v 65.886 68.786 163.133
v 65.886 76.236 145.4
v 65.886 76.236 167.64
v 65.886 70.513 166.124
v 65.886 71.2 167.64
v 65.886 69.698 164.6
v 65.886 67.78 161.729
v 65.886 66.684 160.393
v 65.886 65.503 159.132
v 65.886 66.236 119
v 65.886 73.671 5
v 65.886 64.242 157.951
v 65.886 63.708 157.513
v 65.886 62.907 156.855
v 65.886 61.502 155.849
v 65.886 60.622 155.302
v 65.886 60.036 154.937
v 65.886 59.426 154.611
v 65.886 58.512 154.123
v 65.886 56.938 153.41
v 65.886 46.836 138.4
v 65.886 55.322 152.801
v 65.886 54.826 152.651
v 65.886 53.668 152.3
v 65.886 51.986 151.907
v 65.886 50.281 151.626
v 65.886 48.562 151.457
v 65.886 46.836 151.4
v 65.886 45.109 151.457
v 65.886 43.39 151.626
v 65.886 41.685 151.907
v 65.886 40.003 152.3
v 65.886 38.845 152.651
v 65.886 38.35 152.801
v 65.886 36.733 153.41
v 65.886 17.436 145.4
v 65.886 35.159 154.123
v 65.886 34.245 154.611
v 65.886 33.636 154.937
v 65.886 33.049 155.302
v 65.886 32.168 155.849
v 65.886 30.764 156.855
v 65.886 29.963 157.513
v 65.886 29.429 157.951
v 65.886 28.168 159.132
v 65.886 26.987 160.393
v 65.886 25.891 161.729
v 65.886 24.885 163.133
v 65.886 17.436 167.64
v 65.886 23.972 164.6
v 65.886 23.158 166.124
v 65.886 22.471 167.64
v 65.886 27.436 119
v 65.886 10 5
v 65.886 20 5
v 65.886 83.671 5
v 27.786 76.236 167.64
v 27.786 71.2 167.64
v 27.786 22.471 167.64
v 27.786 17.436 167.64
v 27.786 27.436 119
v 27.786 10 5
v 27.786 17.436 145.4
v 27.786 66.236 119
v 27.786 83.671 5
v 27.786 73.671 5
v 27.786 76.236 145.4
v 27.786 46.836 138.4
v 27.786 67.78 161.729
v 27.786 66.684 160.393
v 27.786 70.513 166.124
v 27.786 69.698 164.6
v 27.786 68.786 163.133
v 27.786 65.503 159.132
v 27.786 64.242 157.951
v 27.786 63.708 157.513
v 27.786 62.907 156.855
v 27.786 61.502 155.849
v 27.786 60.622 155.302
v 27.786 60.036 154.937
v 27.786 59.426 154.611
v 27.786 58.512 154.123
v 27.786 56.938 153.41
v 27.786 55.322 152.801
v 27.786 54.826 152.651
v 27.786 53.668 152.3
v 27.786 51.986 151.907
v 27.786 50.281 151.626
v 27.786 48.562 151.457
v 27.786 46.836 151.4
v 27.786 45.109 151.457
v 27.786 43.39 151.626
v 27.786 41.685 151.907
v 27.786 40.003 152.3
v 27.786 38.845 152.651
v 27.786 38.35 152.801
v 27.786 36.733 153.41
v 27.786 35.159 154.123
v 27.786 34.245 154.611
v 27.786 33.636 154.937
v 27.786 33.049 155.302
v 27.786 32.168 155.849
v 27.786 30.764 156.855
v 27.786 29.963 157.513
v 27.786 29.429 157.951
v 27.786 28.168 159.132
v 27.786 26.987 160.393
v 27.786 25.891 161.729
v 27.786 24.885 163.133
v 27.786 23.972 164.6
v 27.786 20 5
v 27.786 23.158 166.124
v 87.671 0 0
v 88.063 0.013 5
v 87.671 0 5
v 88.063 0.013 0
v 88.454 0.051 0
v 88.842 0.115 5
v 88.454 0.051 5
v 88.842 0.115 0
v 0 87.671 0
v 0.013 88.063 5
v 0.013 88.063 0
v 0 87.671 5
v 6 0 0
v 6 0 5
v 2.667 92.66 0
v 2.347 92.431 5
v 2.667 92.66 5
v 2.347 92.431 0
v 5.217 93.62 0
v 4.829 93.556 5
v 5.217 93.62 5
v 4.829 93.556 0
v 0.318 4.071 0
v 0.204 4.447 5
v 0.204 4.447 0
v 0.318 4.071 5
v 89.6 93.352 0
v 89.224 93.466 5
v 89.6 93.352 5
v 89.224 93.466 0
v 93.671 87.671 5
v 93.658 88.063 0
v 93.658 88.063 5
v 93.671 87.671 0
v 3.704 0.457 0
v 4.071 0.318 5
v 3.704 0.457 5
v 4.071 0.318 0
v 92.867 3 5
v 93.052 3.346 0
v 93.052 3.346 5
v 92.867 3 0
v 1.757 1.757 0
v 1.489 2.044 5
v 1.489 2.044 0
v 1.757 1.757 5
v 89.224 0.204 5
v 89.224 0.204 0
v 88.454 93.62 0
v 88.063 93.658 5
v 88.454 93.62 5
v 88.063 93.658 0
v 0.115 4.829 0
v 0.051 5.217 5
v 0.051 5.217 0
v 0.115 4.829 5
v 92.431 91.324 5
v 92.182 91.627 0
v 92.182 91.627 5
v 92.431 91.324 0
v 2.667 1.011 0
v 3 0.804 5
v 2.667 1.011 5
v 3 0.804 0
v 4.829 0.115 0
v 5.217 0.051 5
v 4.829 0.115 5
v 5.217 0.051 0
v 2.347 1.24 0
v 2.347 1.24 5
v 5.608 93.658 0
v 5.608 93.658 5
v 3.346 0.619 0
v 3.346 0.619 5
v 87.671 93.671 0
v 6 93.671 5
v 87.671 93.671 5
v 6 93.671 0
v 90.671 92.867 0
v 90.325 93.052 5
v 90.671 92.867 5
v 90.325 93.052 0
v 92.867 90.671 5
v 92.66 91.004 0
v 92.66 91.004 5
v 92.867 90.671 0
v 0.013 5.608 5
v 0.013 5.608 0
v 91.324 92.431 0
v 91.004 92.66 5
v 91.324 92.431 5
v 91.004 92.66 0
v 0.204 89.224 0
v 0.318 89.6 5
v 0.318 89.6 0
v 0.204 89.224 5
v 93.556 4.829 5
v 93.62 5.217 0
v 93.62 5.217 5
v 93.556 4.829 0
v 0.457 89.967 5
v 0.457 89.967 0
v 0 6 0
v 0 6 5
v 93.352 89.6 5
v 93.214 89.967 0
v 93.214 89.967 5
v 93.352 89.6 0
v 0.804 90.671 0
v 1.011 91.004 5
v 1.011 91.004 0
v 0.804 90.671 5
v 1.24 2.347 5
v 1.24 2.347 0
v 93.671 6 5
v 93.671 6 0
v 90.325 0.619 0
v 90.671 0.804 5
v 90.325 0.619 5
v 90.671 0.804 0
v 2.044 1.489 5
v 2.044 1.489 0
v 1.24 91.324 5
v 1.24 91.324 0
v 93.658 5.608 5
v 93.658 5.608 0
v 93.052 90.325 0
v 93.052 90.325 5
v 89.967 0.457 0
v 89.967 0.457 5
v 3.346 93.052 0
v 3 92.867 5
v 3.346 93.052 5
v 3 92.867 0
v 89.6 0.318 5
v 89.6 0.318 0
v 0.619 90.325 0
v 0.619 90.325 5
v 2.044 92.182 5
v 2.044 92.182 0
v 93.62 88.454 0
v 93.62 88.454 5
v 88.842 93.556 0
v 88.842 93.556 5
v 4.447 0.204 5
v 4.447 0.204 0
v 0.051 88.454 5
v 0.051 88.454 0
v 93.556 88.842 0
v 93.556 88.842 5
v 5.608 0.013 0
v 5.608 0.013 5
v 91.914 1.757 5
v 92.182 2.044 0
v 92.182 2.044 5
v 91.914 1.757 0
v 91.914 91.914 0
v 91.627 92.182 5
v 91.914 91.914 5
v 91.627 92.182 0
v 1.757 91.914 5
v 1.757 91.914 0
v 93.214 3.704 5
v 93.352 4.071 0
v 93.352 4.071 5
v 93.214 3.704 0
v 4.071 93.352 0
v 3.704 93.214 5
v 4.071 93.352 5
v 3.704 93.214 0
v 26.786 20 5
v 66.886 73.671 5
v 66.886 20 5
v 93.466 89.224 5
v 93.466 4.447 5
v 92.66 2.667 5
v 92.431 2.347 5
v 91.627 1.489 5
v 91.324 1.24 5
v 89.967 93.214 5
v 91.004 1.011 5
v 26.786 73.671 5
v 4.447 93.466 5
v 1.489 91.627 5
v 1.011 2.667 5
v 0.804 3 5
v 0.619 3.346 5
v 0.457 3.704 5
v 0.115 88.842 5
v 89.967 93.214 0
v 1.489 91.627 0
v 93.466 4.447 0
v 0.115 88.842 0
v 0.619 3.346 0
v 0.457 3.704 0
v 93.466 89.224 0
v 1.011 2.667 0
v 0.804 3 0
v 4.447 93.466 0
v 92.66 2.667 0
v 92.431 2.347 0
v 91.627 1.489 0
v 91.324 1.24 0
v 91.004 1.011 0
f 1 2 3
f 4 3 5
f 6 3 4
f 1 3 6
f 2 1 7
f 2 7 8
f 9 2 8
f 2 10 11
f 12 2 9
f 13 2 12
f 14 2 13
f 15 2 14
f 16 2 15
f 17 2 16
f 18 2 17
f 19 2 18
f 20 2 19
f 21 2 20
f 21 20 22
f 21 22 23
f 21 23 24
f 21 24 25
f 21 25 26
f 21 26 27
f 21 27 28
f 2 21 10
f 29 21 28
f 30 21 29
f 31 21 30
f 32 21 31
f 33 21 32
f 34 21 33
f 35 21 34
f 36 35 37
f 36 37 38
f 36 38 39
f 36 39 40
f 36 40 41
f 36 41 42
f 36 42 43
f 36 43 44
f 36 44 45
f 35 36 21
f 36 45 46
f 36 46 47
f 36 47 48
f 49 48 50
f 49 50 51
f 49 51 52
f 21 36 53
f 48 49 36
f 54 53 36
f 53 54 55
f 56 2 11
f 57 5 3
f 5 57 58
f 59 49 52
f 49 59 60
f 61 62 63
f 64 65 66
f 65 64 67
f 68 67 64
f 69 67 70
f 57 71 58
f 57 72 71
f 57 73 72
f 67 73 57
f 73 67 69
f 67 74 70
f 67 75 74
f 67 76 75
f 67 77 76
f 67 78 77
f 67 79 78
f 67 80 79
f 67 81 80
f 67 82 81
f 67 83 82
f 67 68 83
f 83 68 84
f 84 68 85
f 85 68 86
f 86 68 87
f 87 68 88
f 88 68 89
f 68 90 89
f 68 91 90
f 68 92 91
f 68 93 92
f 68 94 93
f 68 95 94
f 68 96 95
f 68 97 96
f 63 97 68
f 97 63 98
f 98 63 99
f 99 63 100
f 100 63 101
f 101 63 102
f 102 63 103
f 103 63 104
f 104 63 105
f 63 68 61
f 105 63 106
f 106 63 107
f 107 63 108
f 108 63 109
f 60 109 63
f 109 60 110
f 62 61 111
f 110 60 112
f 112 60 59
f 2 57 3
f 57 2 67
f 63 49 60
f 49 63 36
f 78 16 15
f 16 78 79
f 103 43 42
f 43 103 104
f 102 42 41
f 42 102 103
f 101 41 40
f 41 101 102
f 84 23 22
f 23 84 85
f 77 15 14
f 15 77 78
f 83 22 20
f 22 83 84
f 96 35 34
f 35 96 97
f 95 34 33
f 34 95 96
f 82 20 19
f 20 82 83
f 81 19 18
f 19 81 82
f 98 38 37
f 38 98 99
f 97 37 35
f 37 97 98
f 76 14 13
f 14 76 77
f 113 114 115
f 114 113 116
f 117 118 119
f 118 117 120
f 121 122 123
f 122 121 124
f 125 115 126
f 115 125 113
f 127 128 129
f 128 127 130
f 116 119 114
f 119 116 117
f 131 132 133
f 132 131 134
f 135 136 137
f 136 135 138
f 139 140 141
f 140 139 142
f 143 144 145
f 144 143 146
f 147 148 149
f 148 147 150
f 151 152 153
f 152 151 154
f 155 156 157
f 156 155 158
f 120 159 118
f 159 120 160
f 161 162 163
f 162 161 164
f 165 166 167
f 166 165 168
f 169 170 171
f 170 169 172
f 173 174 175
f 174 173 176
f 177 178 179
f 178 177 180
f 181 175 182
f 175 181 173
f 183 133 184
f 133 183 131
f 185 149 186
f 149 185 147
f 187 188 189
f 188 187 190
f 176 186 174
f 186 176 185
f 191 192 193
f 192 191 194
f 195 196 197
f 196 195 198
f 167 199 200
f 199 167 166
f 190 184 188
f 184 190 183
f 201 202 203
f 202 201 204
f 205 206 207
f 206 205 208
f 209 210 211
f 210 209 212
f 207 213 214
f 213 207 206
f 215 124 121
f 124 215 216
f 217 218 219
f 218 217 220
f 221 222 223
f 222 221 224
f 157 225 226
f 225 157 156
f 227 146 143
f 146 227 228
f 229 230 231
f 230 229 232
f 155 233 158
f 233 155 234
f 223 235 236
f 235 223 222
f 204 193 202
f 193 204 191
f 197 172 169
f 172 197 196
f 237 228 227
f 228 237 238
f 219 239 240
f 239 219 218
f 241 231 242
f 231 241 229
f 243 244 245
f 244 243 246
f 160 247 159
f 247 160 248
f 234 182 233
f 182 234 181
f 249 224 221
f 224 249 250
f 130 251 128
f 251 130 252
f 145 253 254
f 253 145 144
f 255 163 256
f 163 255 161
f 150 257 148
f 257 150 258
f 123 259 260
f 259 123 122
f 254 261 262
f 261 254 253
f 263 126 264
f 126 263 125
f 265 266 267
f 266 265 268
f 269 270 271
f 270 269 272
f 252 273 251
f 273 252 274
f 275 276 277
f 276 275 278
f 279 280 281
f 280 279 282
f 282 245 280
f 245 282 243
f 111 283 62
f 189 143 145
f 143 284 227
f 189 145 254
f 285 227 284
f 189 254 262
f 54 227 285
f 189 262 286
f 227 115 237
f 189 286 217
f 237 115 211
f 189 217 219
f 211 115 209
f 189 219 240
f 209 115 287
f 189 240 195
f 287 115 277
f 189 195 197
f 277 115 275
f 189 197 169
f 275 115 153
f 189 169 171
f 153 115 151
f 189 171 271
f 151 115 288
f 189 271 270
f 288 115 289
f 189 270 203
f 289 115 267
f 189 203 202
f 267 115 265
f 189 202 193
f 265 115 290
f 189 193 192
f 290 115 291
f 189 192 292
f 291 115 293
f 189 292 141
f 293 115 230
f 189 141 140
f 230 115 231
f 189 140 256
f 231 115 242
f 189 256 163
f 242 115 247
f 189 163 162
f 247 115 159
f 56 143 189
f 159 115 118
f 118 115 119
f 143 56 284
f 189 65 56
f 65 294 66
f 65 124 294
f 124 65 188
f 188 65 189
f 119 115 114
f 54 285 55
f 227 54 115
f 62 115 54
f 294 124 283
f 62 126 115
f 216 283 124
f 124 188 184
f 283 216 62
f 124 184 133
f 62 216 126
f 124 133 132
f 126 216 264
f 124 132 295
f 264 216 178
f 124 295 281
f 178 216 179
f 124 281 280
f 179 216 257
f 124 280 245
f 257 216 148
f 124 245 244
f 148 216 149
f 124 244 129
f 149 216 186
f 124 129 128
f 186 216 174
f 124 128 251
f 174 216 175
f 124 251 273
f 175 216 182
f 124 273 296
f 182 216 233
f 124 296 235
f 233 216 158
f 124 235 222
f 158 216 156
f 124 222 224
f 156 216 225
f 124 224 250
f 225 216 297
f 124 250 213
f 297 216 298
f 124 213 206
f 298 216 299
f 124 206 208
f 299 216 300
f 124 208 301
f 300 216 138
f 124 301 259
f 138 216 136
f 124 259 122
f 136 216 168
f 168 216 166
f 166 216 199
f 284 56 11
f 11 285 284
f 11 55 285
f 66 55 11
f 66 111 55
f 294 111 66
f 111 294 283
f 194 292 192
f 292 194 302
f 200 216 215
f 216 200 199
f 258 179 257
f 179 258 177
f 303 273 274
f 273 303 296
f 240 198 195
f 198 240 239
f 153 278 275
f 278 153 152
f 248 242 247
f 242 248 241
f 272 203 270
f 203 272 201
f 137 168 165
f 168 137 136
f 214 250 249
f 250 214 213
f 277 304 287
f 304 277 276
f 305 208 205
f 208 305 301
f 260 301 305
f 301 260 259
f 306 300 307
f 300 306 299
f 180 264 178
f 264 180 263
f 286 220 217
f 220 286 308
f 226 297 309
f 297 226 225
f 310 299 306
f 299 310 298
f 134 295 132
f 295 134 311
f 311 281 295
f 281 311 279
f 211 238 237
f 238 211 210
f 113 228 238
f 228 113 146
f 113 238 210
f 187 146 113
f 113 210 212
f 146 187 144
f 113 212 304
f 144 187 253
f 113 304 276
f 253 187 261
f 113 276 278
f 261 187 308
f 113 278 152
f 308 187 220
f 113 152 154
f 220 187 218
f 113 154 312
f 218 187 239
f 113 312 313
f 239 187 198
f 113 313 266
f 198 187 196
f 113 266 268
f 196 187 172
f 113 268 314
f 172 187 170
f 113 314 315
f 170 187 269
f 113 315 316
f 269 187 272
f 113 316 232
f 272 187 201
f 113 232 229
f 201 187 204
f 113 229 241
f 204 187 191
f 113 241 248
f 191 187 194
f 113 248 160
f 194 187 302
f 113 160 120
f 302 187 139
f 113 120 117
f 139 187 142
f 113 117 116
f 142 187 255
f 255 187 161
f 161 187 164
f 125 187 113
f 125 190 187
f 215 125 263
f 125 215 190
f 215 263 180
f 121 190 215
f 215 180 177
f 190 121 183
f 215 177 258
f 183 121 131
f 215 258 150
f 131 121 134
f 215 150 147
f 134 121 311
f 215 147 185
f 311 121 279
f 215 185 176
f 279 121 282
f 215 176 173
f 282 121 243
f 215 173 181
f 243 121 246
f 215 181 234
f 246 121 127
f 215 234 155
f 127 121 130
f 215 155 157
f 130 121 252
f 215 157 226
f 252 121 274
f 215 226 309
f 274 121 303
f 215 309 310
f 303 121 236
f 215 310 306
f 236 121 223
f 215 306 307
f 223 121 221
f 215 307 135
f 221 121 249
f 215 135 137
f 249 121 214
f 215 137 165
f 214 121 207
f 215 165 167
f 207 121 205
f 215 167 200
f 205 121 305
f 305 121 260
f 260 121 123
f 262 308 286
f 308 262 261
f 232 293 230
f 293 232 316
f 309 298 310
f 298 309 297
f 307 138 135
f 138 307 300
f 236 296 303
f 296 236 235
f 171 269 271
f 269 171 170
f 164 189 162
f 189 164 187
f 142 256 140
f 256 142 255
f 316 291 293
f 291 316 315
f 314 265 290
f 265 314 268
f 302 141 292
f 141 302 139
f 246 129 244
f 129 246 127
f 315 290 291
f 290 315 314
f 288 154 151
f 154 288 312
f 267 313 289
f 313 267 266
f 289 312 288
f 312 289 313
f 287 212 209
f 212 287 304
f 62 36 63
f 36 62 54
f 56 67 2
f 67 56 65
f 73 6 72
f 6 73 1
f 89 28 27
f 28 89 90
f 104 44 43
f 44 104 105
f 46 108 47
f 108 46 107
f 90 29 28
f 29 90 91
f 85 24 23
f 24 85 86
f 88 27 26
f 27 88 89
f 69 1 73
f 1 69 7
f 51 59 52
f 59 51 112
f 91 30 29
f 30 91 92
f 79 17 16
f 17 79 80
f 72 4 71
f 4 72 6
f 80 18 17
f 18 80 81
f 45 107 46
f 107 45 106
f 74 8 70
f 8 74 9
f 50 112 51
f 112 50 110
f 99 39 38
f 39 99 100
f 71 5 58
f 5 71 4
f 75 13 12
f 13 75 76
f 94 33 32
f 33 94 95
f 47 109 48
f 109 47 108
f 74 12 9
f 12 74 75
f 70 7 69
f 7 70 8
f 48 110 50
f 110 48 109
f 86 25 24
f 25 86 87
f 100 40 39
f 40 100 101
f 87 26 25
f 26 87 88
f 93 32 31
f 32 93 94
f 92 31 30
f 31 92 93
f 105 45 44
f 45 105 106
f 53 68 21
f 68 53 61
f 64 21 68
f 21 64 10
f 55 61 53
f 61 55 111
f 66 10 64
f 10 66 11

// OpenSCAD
// SPDX-License-Identifier: MIT
// Tilt prop: a stand that holds a sewing machine tipped back in its base
// Copyright (c) 2026 Robert Drzyzgula
// All dimensions in mm unless noted.
//
// A copy of this file is also kept in the VSM Base repository
// (github.com/bobdrzyzgula/VSM-Base),
// at standalone/tilt-prop/tilt_prop.scad.
// When either copy changes, ask Bob whether to make the same change in
// the other.
//
// Stand it on the table behind the base and tip the machine back onto it:
// its top catches the machine's arm (or some other solid part), so the
// machine stays put for oiling and adjusting, with both hands free, and its
// weight goes into the table instead of tipping the base up.
//
// The top is a cradle, for a round arm (a radius, and a width along the
// arm), or flat (a width and a length). Either can slope, to meet a part
// that comes to rest at an angle: the top turns about the width axis (the
// cradle's axis), rising toward the back. The foot is sized for stability:
// the line of a load on the top, square to it, can lean a further
// `stability_angle` either way before it passes the foot's edge, so a
// knock or a sloping top won't tip the prop over.
//
// Two tapered legs, front and back, rise from the foot to the top, with a
// gabled opening between them; it prints upright without supports.
// Self-contained: no libraries needed.
//
// Spun off from the VSM Base (https://github.com/bobdrzyzgula/VSM-Base).

/* [Top] */
// Height of the top above the table: the cradle's bottom, or the flat top's surface at its middle
height = 152.4; // [40 : 0.5 : 400]
// Top: a cradle for a round arm, or flat
top = "cradle"; // [cradle, flat]
// Cradle: radius (the arm's radius plus a little)
cradle_r = 25.4; // [5 : 0.5 : 80]
// Width along the arm (the cradle's length, or the flat top's width)
width = 38.1; // [15 : 0.5 : 150]
// Flat top: length, front to back
flat_length = 50; // [15 : 0.5 : 200]
// Slope of the top, degrees from level, rising toward the back (negative: toward the front)
slope = 0; // [-45 : 1 : 45]

/* [Foot and legs] */
// How far a load on the top may lean past square to it, either way, before the prop would tip (sets the foot's size)
stability_angle = 15; // [5 : 1 : 35]
// Foot thickness
foot_t = 5; // [3 : 0.5 : 12]
// Leg thickness, front and back
leg_t = 10; // [5 : 0.5 : 25]
// Clearance added to the cradle's radius
cradle_clear = 1; // [0 : 0.1 : 3]

/* [Hidden] */
$fn = 96;
// Head: depth front to back, its underside below the top, the cradle's lips
head_d  = top == "flat" ? flat_length : 2 * cradle_r + 8;
head_dz = 8;
lip_h   = top == "flat" ? 0 : 0.6 * cradle_r;
// Foot: the load's line from the top's middle, leaning up to slope +
// stability_angle (front and back) or stability_angle (sideways), must
// stay inside the foot, plus a margin
reach_y = height * tan(min(abs(slope) + stability_angle, 60));
reach_x = height * tan(stability_angle);
foot_y  = max(head_d + 20, 2 * (reach_y + 6));
foot_x  = max(width + 20, 2 * (reach_x + 6));
head_cy = 0;                                  // the top's middle, over the foot's centre

echo(str("Tilt prop: ", top == "flat" ? str("flat top ", width, " x ", flat_length, " mm")
                                      : str("cradle ", cradle_r, " mm radius, ", width, " mm wide"),
         ", ", height, " mm high", slope != 0 ? str(", sloping ", slope, " degrees") : "",
         "; foot ", round(foot_x), " x ", round(foot_y), " mm"));

// The head in its own frame: the top's middle at the origin, level
module head() {
    difference() {
        translate([-width / 2, -head_d / 2, -head_dz]) cube([width, head_d, head_dz + lip_h]);
        if (top == "cradle")
            translate([-width / 2 - 1, 0, cradle_r]) rotate([0, 90, 0])
                cylinder(h = width + 2, r = cradle_r + cradle_clear);
    }
}
// Placed: up to the height, turned by the slope about the width axis
module placed() {
    translate([0, head_cy, height]) rotate([slope, 0, 0]) children();
}

module tilt_prop() {
    difference() {
        union() {
            // foot, corners rounded
            linear_extrude(height = foot_t)
                offset(r = 6) offset(delta = -6) square([foot_x, foot_y], center = true);
            // legs: a post tapering from the foot to the head's underside
            hull() {
                translate([-width / 2, -(foot_y - 20) / 2, 0]) cube([width, foot_y - 20, foot_t]);
                placed() translate([-width / 2, -head_d / 2, -head_dz]) cube([width, head_d, 1]);
            }
            placed() head();
        }
        // the cradle again, through the post's top where the slope tips it
        if (top == "cradle")
            placed() translate([-width / 2 - 1, 0, cradle_r]) rotate([0, 90, 0])
                cylinder(h = width + 2, r = cradle_r + cradle_clear);
        // the opening between the legs, gabled so it prints without a bridge
        let(yb = (foot_y - 20) / 2 - leg_t,
            yt = head_d / 2 - leg_t,
            zt = height - head_dz - abs(sin(slope)) * head_d / 2 - 6 - yt)
            if (yt > 2 && zt > foot_t + 10)
                rotate([90, 0, 90]) linear_extrude(height = width + 2, center = true)
                    polygon([[-yb, foot_t], [yb, foot_t], [yt, zt], [0, zt + yt], [-yt, zt]]);
    }
}

translate([foot_x / 2, foot_y / 2, 0]) tilt_prop();
